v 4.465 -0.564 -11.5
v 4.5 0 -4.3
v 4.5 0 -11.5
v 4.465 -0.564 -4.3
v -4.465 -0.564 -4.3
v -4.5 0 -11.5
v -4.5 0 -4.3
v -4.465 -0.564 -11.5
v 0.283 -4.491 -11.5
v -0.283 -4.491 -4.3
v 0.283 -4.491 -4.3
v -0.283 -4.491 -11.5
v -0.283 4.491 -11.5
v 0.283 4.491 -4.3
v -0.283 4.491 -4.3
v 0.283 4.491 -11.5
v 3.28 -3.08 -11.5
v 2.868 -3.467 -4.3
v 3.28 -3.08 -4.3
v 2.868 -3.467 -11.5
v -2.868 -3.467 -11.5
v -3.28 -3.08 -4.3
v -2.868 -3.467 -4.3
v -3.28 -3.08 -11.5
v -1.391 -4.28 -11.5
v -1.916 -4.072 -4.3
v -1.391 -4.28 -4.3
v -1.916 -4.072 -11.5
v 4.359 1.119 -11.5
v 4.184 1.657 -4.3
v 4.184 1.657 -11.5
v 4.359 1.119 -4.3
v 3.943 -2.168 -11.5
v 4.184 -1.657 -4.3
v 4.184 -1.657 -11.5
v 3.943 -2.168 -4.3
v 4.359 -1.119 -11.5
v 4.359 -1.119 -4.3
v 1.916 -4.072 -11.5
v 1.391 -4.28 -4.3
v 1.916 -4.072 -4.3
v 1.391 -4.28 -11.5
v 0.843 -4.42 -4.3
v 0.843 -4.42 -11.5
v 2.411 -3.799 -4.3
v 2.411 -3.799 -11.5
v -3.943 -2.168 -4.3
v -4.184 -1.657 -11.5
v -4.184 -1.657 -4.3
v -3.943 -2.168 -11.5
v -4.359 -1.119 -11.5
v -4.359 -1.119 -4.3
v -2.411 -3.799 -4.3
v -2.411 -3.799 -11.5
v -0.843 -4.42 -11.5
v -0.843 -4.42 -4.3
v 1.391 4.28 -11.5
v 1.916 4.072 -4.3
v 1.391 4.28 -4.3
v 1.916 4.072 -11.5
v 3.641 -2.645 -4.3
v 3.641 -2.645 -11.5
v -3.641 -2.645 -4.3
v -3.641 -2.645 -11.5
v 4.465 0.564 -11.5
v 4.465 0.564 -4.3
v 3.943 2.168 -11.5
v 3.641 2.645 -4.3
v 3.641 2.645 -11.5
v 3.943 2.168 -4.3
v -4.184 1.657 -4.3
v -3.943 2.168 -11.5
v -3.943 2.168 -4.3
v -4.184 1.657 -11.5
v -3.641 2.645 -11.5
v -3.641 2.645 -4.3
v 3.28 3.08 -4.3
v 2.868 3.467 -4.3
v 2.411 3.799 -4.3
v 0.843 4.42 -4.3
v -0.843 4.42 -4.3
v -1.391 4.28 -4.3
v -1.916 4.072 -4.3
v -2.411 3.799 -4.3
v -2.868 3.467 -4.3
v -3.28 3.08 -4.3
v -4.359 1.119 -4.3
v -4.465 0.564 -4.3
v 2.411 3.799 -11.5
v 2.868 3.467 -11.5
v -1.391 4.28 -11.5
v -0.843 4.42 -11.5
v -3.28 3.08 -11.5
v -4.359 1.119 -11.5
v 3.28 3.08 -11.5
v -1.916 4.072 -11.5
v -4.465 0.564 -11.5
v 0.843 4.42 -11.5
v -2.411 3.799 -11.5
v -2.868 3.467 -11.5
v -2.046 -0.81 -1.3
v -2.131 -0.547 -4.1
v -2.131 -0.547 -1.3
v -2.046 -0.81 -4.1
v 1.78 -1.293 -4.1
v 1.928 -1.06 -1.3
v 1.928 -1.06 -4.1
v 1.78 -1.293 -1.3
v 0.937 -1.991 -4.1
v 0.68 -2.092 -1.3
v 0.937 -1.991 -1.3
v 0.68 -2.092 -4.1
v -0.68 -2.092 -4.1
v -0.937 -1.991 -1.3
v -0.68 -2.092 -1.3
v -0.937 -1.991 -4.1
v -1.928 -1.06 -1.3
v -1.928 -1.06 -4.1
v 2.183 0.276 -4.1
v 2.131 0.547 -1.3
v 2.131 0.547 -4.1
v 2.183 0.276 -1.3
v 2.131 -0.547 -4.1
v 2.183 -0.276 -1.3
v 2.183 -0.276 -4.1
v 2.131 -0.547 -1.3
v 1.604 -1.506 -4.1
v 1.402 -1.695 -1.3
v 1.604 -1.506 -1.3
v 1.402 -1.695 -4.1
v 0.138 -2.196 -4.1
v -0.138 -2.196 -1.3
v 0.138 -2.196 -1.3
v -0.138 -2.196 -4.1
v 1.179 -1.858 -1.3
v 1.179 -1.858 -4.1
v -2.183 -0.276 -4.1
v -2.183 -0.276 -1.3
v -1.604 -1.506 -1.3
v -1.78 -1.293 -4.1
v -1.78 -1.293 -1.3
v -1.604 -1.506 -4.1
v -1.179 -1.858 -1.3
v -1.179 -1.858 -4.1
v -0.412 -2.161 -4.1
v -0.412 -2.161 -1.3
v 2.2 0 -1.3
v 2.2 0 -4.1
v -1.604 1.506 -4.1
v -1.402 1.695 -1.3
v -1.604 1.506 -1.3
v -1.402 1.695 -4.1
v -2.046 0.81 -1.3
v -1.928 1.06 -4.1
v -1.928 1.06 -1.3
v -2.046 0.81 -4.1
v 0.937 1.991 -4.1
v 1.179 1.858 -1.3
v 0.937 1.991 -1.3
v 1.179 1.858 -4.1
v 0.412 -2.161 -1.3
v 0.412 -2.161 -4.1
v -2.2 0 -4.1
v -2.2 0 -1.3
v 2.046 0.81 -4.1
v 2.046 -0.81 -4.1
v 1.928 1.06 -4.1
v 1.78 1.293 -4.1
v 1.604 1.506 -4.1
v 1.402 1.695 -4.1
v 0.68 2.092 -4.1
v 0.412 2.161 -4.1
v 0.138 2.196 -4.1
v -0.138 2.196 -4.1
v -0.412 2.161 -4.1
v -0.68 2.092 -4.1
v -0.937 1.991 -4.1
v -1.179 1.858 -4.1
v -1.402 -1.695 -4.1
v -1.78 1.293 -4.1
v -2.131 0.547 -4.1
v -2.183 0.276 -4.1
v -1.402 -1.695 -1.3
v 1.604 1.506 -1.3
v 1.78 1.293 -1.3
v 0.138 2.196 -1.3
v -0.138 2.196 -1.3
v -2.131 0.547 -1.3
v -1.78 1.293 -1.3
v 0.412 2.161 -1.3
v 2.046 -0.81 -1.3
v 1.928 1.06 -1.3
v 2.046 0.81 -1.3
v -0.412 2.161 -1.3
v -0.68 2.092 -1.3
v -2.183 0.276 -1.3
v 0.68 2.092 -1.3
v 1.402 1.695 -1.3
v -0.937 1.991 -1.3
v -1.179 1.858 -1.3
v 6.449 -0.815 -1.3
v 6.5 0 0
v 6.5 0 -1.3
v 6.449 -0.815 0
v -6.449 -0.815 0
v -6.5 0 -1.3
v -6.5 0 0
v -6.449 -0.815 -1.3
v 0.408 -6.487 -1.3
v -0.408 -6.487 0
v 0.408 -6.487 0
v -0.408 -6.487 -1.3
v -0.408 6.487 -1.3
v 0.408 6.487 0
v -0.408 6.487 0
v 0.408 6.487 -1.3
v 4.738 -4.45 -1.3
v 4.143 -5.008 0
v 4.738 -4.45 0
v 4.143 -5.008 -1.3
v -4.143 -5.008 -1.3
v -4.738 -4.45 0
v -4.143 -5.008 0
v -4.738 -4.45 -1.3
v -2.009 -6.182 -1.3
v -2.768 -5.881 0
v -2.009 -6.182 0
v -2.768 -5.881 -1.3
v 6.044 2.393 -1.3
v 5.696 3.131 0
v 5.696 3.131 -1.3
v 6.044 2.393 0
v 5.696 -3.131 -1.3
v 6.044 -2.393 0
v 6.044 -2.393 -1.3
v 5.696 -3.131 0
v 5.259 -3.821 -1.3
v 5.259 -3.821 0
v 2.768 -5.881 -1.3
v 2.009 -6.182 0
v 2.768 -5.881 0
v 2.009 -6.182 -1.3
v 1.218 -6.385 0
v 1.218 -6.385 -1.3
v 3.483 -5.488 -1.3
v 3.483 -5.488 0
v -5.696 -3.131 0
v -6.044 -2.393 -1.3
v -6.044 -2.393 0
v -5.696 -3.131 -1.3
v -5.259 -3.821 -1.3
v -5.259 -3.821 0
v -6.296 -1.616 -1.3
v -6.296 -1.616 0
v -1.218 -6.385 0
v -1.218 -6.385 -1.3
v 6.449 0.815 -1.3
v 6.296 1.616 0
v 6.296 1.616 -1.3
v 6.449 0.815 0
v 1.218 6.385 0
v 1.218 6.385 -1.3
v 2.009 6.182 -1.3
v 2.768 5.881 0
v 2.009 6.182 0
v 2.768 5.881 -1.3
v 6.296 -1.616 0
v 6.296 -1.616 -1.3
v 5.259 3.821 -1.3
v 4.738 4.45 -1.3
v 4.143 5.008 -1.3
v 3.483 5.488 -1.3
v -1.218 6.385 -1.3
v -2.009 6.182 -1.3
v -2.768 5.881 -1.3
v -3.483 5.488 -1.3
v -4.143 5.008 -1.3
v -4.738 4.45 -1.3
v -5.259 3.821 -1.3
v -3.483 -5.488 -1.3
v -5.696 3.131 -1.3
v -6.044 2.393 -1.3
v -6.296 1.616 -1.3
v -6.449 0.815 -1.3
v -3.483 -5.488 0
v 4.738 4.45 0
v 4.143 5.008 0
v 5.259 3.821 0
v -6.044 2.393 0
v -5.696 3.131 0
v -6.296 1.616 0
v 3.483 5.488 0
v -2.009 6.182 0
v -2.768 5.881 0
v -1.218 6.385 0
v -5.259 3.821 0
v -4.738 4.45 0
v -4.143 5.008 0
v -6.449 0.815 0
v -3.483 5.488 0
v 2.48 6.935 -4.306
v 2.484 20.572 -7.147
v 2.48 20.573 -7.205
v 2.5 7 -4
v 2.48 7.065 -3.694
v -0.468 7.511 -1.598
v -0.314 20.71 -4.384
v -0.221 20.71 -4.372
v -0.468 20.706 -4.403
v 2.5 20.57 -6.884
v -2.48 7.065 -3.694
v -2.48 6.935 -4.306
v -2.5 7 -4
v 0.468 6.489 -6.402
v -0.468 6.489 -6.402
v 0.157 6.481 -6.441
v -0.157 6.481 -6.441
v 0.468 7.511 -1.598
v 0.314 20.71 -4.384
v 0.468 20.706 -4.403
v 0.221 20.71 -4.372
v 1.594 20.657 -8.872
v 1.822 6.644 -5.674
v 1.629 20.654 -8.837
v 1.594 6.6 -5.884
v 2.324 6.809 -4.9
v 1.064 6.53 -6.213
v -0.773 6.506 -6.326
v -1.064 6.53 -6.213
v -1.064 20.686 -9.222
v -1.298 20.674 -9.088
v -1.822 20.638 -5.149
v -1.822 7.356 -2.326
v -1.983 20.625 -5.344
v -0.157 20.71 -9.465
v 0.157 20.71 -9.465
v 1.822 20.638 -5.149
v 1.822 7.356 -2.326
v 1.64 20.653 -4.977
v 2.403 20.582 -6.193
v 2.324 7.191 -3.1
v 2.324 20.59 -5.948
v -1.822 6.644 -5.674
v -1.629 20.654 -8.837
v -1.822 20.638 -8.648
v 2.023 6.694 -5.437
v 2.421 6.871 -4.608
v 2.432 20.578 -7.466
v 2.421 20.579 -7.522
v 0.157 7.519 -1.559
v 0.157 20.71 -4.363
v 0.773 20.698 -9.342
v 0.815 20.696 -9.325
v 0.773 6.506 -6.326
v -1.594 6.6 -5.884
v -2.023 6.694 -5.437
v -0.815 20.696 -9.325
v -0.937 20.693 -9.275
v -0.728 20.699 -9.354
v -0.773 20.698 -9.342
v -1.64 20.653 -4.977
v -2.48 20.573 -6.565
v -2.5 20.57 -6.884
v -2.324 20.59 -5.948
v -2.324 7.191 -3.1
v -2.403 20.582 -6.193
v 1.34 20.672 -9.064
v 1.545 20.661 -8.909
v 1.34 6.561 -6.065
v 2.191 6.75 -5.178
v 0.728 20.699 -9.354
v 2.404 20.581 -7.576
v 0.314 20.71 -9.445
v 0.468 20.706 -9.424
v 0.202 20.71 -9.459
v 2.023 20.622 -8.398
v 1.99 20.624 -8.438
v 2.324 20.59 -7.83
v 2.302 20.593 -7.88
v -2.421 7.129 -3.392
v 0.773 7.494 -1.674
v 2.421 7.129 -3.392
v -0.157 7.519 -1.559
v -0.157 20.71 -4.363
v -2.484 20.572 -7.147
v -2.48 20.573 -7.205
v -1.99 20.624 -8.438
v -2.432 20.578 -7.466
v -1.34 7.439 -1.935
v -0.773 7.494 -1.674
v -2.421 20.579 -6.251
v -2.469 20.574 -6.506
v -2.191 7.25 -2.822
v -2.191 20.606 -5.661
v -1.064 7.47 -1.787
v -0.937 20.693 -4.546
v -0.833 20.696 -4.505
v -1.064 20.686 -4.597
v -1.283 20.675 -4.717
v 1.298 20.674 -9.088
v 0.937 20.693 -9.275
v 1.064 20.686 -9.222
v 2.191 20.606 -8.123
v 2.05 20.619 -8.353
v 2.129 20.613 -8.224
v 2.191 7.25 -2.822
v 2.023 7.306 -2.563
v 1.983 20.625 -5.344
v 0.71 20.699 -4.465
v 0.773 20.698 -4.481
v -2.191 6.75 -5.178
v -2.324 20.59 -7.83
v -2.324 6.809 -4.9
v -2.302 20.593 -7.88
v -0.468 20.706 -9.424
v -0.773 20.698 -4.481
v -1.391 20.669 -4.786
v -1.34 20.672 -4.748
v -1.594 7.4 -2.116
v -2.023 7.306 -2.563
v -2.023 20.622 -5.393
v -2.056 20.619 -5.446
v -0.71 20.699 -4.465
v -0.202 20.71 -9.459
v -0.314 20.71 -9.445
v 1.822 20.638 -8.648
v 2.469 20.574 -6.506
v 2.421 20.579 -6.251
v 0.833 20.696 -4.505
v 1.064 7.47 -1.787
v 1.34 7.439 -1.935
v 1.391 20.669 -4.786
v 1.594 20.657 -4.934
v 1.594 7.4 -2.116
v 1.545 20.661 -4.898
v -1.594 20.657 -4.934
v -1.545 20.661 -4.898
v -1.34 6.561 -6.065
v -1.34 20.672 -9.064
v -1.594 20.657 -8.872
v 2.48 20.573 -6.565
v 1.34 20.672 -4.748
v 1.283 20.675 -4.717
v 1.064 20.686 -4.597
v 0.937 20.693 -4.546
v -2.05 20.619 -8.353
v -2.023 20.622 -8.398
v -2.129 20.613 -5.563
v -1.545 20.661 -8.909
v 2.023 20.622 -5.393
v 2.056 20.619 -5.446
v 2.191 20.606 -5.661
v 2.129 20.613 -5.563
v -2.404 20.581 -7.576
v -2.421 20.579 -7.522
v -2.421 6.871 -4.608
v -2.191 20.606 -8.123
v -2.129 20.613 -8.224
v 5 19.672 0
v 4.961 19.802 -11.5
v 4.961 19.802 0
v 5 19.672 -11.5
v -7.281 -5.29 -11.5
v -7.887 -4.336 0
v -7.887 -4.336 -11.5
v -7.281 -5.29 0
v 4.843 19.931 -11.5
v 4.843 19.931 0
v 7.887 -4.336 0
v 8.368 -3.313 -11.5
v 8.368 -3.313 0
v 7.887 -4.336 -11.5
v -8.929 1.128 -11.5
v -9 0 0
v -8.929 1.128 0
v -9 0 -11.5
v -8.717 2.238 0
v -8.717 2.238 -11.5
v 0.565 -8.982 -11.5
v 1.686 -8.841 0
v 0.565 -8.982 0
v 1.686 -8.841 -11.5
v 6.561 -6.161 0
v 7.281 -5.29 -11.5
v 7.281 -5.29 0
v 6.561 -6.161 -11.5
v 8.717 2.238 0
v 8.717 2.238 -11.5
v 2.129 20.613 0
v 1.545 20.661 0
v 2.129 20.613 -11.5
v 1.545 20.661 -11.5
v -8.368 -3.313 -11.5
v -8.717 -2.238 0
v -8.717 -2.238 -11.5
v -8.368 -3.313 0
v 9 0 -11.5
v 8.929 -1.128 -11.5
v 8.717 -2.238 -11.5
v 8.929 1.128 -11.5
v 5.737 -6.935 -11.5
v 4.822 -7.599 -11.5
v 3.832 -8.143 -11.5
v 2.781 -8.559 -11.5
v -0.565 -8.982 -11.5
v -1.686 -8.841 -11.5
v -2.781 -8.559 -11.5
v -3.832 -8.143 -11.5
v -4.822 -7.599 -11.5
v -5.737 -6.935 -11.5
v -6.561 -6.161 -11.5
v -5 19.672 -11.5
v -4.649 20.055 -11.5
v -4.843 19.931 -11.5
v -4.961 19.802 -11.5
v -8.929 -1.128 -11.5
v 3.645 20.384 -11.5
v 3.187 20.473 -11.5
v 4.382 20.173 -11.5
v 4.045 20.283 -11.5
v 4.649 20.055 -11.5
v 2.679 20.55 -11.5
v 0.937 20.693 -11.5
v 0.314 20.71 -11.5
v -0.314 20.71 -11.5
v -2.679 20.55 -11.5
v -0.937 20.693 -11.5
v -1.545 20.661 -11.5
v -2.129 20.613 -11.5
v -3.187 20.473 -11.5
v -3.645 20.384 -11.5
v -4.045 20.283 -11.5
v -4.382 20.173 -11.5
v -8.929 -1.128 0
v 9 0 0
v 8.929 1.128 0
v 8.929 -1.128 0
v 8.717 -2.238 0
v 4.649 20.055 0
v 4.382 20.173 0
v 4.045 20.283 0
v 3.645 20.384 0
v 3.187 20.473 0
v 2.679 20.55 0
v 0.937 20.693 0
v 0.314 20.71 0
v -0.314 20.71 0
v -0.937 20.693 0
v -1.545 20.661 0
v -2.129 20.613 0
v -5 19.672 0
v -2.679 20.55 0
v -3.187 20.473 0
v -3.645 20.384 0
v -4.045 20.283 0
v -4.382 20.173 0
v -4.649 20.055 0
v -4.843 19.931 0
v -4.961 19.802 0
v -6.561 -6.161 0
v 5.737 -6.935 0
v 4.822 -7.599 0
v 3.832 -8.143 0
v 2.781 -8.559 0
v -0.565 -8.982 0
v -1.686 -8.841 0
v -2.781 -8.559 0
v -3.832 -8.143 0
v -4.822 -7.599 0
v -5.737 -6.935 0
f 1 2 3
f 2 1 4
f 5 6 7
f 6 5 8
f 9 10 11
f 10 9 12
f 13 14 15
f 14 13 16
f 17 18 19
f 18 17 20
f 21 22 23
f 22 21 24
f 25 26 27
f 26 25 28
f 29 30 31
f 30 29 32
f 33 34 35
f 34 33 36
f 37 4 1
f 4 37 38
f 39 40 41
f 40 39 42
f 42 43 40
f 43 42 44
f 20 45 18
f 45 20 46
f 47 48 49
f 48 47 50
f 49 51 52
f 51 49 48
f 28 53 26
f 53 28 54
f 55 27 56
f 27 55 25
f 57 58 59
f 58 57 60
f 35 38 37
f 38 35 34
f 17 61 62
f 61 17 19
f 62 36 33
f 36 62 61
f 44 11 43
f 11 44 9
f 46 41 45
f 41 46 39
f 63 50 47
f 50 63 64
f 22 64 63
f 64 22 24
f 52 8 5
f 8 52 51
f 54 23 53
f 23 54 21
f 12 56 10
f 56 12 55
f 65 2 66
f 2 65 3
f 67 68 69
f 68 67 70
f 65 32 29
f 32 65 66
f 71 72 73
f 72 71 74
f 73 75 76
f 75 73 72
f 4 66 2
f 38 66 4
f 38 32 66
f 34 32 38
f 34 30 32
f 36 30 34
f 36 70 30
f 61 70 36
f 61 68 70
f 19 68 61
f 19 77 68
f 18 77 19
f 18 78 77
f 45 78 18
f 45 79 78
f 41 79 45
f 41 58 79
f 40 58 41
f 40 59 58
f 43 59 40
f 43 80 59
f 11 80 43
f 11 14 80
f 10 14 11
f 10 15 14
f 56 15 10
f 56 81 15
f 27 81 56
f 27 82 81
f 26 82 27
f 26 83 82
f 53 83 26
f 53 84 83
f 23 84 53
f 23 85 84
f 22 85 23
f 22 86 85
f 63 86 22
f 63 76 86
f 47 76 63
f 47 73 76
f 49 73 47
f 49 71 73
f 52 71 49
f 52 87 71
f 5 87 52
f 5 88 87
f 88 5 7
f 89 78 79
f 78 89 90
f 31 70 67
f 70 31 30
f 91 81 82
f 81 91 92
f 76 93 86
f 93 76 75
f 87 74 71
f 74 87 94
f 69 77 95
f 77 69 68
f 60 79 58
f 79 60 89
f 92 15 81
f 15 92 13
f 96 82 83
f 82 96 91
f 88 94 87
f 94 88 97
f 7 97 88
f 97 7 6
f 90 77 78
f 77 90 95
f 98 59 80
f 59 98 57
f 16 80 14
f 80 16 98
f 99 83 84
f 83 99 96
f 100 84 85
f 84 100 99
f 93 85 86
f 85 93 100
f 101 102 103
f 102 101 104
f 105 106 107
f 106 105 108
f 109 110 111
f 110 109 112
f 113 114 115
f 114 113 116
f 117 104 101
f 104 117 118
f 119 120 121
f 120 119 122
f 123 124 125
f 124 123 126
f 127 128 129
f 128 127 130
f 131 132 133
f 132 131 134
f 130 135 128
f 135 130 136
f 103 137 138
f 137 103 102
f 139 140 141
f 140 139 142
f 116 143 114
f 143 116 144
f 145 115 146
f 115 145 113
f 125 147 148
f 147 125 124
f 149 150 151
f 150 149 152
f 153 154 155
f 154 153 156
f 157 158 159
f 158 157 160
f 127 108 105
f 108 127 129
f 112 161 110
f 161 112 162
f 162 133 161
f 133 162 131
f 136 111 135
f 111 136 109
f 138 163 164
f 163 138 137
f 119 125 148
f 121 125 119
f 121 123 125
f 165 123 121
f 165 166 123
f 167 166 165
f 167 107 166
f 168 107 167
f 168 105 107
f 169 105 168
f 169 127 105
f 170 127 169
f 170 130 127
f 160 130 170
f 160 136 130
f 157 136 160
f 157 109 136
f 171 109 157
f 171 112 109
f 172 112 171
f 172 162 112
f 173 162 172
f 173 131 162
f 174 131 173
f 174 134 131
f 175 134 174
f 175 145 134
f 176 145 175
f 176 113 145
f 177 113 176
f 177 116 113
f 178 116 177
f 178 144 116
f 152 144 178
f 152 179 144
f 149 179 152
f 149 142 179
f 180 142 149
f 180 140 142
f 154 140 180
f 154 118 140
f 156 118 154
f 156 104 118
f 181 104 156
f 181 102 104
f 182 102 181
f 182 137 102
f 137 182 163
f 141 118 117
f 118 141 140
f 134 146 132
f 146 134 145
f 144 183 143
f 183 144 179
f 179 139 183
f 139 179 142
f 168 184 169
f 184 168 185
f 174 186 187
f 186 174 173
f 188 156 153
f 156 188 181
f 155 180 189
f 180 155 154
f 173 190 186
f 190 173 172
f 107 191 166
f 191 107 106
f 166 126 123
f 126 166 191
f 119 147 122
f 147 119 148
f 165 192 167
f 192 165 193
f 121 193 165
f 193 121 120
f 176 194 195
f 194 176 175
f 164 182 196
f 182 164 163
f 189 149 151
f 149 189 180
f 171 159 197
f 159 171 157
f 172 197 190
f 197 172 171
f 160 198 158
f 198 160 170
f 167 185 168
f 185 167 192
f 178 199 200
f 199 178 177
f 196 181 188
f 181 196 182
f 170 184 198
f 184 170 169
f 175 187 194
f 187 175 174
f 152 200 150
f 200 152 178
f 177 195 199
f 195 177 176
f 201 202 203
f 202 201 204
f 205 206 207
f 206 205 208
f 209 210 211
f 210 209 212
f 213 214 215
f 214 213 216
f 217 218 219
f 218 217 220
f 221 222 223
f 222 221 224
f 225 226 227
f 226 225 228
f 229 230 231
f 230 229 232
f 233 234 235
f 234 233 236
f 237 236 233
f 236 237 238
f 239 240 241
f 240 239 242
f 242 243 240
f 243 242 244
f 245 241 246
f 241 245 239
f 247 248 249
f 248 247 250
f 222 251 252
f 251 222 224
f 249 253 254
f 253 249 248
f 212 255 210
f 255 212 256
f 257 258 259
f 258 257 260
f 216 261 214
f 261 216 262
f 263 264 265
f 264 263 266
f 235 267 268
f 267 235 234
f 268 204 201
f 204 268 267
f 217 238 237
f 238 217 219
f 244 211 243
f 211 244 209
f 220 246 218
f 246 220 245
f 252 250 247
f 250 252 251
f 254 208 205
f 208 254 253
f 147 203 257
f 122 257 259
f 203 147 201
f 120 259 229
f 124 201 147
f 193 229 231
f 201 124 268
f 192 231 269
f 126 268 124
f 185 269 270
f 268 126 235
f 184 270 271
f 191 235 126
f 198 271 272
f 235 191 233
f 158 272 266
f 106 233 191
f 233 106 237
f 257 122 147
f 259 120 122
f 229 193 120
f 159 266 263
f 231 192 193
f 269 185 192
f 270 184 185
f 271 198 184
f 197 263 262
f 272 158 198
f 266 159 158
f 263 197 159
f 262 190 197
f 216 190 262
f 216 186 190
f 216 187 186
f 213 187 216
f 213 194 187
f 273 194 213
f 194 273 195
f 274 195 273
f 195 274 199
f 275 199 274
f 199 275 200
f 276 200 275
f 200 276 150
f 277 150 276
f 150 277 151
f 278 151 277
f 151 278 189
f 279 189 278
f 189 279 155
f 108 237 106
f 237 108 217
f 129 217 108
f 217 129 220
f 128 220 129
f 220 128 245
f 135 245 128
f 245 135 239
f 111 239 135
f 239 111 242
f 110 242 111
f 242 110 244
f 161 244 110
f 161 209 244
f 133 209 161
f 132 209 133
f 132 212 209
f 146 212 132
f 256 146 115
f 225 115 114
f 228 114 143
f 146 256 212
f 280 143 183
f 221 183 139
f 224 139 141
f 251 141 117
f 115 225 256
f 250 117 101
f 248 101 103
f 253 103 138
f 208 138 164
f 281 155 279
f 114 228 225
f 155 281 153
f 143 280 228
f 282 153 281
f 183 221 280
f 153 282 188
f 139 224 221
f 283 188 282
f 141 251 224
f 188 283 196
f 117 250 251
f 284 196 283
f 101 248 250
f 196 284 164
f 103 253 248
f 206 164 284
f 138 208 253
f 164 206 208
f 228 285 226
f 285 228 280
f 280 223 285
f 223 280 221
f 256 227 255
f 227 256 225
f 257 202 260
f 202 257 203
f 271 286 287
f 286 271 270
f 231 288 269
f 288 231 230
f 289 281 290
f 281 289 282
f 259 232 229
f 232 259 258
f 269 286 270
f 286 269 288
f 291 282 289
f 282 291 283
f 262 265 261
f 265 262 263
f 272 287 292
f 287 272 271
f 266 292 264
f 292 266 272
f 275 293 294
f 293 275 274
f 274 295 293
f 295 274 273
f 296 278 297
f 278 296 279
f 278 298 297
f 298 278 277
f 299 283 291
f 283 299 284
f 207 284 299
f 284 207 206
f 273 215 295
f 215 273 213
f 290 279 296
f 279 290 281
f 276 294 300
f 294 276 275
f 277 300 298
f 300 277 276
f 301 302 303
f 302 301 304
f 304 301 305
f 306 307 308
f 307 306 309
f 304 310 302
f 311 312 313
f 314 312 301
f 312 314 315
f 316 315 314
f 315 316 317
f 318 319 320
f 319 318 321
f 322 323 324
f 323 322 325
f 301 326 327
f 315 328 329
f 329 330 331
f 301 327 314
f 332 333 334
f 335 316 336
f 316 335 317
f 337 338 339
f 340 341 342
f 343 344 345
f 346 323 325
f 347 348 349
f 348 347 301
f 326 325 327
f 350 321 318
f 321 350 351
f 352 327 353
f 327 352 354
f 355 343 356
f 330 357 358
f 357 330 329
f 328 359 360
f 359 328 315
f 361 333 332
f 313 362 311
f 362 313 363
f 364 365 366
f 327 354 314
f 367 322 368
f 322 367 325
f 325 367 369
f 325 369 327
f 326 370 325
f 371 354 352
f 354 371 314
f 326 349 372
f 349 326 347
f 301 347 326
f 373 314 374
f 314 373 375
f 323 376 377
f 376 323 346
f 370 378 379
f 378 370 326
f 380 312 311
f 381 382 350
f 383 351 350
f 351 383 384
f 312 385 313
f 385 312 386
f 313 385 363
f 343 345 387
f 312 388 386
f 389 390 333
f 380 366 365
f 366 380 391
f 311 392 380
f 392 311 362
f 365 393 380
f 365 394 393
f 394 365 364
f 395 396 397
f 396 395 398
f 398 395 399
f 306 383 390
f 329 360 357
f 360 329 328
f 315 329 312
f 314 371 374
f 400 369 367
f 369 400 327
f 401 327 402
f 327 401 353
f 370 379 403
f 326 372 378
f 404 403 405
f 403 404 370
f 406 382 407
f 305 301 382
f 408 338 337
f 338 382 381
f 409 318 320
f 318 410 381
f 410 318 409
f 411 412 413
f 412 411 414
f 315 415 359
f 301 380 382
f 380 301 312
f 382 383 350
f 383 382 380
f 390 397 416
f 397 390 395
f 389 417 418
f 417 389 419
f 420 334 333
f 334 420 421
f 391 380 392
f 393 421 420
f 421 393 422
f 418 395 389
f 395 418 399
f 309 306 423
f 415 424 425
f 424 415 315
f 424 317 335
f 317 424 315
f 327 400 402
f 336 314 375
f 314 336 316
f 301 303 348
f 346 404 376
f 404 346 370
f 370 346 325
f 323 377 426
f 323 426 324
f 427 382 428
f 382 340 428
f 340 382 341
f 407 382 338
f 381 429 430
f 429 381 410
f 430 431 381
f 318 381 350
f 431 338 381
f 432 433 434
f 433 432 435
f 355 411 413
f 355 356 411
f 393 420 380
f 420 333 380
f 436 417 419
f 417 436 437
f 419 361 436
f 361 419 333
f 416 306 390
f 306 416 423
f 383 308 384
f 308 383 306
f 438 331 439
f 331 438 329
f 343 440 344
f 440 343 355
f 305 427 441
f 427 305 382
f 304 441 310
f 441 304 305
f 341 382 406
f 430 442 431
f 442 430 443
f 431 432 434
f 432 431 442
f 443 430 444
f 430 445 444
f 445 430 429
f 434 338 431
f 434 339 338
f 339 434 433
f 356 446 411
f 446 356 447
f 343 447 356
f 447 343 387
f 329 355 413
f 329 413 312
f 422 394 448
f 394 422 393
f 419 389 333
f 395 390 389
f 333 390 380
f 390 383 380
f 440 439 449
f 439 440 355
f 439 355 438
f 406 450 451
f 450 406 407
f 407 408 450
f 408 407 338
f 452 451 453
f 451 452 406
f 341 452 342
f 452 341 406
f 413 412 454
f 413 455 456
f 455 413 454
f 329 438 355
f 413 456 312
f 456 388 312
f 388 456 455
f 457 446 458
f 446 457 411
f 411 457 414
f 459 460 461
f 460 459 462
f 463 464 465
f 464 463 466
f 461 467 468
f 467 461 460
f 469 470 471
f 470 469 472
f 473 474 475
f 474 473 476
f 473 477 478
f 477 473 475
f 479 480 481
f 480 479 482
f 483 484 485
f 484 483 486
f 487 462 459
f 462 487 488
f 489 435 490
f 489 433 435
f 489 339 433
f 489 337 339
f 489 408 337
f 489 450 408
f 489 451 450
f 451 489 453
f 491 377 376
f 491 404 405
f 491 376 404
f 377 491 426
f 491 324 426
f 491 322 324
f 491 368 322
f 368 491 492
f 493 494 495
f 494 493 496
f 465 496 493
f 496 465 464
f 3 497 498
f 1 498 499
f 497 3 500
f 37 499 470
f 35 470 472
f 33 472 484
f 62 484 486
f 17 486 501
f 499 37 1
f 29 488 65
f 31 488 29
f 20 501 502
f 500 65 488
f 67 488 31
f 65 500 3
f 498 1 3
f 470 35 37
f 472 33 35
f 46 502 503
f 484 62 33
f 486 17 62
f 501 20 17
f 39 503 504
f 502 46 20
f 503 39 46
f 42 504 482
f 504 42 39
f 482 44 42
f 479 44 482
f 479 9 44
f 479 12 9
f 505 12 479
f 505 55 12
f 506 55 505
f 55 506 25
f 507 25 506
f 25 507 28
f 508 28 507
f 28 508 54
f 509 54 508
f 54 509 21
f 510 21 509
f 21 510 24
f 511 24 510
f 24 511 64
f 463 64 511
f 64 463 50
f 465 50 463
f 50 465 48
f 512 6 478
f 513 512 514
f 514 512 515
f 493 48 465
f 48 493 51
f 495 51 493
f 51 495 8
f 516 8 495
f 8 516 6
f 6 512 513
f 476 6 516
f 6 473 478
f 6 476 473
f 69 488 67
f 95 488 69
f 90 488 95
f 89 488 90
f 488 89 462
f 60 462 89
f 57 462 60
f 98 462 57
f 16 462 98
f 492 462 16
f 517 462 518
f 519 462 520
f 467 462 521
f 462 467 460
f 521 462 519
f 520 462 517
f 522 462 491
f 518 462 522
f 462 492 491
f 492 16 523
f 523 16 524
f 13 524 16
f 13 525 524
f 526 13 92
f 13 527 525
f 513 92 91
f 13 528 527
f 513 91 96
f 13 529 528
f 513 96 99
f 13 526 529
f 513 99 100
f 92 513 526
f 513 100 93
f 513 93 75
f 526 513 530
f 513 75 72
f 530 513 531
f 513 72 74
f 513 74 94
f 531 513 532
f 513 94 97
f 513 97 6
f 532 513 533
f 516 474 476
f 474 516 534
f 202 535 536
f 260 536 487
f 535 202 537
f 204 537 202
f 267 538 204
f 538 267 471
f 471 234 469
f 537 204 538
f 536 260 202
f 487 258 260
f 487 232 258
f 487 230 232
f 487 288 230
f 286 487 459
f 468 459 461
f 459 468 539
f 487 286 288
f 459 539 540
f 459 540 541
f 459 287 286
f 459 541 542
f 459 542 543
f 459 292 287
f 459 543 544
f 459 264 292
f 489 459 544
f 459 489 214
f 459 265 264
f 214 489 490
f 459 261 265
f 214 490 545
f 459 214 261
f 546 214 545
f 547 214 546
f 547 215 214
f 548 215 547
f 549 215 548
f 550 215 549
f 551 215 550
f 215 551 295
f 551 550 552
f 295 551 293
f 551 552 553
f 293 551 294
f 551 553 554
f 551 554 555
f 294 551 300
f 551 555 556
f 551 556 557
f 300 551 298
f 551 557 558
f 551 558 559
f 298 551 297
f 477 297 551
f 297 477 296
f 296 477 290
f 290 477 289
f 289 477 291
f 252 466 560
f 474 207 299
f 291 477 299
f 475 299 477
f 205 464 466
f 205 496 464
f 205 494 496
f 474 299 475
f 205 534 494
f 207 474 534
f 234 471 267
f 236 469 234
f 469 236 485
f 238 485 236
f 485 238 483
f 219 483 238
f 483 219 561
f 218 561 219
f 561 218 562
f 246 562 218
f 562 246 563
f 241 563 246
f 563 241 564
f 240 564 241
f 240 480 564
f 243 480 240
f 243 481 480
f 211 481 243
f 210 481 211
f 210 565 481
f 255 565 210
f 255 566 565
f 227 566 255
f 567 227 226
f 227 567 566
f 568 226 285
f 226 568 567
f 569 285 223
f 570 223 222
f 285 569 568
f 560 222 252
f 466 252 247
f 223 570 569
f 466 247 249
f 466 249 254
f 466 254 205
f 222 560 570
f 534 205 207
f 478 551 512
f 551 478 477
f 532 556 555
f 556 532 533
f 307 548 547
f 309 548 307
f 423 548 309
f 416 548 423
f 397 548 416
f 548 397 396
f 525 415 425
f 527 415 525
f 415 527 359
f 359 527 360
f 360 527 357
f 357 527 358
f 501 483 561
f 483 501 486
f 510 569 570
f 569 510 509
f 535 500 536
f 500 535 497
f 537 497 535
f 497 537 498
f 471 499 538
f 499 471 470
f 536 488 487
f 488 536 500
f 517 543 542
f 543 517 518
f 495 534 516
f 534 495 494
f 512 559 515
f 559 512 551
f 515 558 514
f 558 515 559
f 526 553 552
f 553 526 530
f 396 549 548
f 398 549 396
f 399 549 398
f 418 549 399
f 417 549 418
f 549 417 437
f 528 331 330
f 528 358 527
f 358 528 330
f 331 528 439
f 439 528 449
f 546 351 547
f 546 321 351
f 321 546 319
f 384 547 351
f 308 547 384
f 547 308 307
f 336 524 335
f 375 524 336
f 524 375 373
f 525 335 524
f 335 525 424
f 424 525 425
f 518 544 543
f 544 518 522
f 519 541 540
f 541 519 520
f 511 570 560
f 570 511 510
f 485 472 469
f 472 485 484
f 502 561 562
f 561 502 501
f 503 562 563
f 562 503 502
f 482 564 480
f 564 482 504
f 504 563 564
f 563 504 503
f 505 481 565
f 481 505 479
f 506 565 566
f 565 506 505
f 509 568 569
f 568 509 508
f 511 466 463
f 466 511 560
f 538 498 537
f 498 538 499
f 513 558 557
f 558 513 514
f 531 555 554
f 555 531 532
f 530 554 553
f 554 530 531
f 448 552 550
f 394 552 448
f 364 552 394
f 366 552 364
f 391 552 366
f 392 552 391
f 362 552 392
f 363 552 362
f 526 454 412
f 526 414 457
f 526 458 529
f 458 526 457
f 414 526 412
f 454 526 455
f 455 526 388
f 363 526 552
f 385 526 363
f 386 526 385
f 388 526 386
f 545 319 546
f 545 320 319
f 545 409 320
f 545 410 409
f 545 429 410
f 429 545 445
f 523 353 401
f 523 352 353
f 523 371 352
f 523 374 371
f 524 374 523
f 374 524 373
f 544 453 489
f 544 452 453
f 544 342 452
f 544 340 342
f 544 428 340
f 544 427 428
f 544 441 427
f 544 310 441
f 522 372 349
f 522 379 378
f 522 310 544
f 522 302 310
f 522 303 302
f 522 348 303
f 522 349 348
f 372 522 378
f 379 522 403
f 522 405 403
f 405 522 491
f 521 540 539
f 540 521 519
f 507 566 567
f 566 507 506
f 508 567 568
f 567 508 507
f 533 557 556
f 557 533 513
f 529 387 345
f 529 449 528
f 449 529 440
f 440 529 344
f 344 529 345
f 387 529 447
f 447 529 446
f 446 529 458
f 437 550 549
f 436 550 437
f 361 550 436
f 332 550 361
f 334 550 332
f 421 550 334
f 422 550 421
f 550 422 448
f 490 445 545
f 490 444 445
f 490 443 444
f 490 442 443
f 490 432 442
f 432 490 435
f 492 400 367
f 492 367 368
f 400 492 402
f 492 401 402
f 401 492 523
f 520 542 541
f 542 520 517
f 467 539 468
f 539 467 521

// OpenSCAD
$fn=50;

// % v0();

rotate([180,0,0]) difference() {
   linear_extrude(height=11.5) projection() hull() {
      translate([0,0,0]) cylinder(d=18,h=5);
      translate([0,-5,4]) rotate([78,0,0]) cylinder(d=10, h=15);
   }
   union() {
     translate([0,0,4.3]) cylinder(d=9.0,h=10);
      translate([0,0,0]) cylinder(d=4.4,h=4.1);
      // translate([0,0,-0.15]) cylinder(d=4.4,h=1.4);

      /* cutout for the drywall mount's top... */
      translate([0,0,-0.1]) cylinder(d=13,h=1.4);

      translate([0,-7,4]) rotate([78,0,0]) cylinder(d=5, h=17);
   }
}

module v0() {
   difference() {
      linear_extrude(height=11) projection() hull() {
         translate([0,0,0]) cylinder(d=18,h=5);
         translate([0,-5,4]) rotate([80,0,0]) cylinder(d=10, h=17);
      }
      union() {
        translate([0,0,3.3]) cylinder(d=8.2,h=10);
         translate([0,0,1.4]) cylinder(d=3.6,h=5);
         translate([0,0,-0.1]) cylinder(d=3.6,h=1.4);
   
         /* cutout for the drywall mount's top... */
         translate([0,0,-0.1]) cylinder(d=12.6,h=1.4);
   
         translate([0,-7,4]) rotate([80,0,0]) cylinder(d=5, h=17);
      }
   }
}
